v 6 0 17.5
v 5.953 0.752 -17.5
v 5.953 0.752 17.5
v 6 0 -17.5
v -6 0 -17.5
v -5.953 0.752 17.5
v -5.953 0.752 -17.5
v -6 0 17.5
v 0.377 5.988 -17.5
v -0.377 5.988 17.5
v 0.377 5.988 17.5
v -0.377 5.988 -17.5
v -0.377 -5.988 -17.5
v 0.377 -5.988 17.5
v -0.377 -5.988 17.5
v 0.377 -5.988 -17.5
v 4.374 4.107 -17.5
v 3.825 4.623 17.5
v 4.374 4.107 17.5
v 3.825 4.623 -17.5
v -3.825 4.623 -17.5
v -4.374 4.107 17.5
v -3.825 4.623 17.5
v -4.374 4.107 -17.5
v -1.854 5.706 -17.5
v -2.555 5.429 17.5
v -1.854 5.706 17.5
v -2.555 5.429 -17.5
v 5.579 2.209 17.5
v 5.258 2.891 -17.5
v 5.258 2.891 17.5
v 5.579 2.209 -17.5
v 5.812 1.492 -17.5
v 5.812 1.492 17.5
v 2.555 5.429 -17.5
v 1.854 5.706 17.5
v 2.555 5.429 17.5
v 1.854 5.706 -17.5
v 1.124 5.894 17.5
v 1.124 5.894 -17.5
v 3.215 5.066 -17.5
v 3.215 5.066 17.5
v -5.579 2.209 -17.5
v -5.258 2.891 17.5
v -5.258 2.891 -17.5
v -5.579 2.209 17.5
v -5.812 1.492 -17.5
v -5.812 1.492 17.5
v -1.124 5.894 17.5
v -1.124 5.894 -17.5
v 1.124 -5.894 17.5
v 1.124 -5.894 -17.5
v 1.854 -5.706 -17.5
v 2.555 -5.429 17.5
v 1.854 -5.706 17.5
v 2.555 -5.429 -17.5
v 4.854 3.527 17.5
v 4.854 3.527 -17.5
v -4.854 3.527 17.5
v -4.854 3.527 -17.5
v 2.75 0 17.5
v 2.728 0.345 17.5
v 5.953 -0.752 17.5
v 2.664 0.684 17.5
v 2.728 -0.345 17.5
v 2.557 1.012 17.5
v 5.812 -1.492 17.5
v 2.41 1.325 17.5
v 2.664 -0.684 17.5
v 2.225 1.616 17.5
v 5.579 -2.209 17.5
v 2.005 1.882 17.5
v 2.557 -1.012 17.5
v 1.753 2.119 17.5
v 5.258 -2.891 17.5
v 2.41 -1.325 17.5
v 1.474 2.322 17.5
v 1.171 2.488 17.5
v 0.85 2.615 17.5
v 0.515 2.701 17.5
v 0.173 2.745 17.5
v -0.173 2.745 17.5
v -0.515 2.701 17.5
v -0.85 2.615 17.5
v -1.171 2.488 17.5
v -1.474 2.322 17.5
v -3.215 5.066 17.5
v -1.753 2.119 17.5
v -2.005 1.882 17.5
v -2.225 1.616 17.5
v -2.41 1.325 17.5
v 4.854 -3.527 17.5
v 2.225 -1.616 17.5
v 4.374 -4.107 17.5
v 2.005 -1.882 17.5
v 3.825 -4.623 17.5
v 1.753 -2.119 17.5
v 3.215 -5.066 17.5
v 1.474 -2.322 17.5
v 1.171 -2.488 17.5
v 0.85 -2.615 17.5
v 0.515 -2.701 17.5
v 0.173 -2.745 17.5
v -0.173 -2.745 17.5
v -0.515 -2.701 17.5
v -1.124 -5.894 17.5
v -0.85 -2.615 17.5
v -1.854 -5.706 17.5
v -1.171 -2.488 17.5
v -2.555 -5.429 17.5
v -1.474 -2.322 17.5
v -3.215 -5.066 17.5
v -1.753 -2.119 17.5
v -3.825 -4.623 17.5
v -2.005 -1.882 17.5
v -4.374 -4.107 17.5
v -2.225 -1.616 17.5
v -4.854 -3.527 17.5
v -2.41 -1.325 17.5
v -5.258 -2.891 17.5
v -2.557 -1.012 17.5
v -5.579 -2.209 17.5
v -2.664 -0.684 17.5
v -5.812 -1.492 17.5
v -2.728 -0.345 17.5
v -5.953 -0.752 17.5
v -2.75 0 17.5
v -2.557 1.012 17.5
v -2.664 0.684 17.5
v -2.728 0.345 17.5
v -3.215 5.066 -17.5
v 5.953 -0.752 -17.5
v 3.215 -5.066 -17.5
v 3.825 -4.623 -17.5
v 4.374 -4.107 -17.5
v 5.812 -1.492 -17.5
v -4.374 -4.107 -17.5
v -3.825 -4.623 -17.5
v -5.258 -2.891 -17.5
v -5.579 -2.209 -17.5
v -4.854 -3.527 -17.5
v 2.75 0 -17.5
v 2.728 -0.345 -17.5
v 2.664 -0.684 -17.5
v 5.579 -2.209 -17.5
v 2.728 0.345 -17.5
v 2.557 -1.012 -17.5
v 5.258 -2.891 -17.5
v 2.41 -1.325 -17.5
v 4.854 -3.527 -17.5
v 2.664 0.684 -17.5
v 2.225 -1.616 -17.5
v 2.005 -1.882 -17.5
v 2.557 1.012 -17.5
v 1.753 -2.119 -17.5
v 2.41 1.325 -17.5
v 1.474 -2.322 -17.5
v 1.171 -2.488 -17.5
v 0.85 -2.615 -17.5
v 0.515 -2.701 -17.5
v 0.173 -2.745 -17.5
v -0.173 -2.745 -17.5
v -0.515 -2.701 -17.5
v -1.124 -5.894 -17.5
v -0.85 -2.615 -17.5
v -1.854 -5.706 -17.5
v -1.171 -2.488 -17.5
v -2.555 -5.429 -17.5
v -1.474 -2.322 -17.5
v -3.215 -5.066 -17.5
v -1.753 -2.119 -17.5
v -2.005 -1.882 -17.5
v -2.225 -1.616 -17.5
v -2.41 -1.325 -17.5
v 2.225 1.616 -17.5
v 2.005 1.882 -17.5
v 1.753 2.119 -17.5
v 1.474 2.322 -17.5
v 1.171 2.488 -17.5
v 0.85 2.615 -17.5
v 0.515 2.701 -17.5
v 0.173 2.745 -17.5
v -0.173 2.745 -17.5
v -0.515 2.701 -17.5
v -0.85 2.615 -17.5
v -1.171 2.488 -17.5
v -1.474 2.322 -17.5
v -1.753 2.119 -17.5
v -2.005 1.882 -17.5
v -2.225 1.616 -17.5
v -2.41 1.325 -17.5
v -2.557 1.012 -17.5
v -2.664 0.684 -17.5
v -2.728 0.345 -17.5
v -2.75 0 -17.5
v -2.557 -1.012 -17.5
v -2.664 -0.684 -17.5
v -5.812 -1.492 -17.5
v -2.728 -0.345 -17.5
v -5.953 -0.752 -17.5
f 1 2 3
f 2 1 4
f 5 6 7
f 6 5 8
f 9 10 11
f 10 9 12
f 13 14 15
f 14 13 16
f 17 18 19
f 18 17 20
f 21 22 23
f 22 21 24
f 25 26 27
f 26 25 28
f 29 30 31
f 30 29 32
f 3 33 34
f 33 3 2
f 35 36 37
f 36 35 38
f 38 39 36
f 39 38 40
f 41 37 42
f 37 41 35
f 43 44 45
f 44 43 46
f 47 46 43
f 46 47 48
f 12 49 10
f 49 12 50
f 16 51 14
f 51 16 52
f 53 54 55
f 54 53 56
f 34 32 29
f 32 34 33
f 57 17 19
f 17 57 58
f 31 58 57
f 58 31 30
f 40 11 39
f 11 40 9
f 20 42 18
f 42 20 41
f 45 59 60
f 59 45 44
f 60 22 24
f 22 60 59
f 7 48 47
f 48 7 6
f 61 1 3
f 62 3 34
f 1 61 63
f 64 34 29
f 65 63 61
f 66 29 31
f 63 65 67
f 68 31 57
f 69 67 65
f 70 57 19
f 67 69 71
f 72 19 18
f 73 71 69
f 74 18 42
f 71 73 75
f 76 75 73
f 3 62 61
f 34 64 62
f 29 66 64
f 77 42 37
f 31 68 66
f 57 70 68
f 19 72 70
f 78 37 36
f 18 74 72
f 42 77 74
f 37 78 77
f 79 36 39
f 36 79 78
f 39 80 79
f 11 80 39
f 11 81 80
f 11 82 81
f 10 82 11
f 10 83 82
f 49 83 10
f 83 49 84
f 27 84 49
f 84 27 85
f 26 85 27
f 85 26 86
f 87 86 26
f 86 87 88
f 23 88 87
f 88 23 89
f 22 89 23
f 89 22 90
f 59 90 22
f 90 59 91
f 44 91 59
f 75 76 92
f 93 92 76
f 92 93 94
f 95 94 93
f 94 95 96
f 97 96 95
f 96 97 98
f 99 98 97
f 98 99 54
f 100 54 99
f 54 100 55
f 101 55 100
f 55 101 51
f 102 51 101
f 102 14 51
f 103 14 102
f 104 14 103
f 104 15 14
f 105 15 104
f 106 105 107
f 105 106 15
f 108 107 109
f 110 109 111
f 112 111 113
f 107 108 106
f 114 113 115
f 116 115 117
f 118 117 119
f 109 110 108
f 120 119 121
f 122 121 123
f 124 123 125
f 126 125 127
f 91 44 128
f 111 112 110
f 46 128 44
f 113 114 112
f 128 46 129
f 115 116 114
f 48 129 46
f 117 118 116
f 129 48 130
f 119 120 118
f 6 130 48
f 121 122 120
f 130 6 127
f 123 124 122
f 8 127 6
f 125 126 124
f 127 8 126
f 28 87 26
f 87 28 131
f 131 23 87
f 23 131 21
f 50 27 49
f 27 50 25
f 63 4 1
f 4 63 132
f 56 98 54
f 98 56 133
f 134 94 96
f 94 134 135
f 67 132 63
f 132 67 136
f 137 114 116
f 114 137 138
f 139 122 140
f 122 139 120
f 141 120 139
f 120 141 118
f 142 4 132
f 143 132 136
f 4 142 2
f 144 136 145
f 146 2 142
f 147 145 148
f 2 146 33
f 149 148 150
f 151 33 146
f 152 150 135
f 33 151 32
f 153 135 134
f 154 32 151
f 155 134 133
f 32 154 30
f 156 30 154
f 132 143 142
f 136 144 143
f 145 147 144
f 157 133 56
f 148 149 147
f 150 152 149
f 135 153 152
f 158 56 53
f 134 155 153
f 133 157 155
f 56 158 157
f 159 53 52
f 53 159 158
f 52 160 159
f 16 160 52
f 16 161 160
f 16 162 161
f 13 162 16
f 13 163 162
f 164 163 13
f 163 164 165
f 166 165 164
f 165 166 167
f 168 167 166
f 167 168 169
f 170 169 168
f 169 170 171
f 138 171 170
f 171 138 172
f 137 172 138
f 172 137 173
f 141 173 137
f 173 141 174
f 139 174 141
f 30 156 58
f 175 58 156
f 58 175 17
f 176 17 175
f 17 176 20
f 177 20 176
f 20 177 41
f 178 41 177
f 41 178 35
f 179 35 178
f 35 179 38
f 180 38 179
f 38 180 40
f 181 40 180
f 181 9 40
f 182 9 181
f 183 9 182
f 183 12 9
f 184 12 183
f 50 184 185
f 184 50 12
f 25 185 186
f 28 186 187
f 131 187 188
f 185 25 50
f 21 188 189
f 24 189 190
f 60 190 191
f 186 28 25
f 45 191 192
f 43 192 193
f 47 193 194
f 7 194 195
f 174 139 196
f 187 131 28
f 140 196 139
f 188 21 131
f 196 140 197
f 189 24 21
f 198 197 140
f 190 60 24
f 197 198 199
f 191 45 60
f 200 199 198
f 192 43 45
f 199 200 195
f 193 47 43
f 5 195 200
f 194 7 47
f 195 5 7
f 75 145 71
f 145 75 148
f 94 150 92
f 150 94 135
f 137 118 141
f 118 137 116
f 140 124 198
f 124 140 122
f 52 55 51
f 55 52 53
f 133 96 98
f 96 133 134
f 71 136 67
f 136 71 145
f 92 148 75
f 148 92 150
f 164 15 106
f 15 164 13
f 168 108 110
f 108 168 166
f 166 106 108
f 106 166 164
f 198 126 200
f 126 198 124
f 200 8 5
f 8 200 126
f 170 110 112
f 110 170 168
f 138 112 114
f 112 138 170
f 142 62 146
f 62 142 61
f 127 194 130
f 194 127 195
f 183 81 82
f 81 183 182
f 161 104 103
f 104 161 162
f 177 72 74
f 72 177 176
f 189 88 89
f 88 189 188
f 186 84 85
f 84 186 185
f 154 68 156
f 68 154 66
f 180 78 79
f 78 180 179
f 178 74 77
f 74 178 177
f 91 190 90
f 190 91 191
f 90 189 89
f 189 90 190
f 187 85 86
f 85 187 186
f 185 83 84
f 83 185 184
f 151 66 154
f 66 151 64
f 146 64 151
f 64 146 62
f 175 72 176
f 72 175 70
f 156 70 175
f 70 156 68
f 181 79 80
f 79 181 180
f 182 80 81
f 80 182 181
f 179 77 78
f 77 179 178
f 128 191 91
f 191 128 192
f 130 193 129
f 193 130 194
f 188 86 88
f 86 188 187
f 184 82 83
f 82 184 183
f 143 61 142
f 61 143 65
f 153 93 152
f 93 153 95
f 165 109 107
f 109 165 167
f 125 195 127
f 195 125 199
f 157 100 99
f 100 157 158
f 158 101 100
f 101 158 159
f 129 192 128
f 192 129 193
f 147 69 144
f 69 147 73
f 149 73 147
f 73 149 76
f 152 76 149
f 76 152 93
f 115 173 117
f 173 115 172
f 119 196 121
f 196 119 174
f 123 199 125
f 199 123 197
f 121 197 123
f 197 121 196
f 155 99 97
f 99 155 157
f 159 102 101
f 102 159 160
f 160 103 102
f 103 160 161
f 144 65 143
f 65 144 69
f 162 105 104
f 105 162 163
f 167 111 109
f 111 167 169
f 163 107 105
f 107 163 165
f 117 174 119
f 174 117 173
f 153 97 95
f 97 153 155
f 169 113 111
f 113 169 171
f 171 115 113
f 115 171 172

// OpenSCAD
$fn = 50;


difference() {
	union() {
		translate(v = [0, 0, -17.5000000000]) {
			cylinder(h = 35, r = 6.0000000000);
		}
	}
	union() {
		translate(v = [0, 0, -100.0000000000]) {
			cylinder(h = 200, r = 2.7500000000);
		}
	}
}
